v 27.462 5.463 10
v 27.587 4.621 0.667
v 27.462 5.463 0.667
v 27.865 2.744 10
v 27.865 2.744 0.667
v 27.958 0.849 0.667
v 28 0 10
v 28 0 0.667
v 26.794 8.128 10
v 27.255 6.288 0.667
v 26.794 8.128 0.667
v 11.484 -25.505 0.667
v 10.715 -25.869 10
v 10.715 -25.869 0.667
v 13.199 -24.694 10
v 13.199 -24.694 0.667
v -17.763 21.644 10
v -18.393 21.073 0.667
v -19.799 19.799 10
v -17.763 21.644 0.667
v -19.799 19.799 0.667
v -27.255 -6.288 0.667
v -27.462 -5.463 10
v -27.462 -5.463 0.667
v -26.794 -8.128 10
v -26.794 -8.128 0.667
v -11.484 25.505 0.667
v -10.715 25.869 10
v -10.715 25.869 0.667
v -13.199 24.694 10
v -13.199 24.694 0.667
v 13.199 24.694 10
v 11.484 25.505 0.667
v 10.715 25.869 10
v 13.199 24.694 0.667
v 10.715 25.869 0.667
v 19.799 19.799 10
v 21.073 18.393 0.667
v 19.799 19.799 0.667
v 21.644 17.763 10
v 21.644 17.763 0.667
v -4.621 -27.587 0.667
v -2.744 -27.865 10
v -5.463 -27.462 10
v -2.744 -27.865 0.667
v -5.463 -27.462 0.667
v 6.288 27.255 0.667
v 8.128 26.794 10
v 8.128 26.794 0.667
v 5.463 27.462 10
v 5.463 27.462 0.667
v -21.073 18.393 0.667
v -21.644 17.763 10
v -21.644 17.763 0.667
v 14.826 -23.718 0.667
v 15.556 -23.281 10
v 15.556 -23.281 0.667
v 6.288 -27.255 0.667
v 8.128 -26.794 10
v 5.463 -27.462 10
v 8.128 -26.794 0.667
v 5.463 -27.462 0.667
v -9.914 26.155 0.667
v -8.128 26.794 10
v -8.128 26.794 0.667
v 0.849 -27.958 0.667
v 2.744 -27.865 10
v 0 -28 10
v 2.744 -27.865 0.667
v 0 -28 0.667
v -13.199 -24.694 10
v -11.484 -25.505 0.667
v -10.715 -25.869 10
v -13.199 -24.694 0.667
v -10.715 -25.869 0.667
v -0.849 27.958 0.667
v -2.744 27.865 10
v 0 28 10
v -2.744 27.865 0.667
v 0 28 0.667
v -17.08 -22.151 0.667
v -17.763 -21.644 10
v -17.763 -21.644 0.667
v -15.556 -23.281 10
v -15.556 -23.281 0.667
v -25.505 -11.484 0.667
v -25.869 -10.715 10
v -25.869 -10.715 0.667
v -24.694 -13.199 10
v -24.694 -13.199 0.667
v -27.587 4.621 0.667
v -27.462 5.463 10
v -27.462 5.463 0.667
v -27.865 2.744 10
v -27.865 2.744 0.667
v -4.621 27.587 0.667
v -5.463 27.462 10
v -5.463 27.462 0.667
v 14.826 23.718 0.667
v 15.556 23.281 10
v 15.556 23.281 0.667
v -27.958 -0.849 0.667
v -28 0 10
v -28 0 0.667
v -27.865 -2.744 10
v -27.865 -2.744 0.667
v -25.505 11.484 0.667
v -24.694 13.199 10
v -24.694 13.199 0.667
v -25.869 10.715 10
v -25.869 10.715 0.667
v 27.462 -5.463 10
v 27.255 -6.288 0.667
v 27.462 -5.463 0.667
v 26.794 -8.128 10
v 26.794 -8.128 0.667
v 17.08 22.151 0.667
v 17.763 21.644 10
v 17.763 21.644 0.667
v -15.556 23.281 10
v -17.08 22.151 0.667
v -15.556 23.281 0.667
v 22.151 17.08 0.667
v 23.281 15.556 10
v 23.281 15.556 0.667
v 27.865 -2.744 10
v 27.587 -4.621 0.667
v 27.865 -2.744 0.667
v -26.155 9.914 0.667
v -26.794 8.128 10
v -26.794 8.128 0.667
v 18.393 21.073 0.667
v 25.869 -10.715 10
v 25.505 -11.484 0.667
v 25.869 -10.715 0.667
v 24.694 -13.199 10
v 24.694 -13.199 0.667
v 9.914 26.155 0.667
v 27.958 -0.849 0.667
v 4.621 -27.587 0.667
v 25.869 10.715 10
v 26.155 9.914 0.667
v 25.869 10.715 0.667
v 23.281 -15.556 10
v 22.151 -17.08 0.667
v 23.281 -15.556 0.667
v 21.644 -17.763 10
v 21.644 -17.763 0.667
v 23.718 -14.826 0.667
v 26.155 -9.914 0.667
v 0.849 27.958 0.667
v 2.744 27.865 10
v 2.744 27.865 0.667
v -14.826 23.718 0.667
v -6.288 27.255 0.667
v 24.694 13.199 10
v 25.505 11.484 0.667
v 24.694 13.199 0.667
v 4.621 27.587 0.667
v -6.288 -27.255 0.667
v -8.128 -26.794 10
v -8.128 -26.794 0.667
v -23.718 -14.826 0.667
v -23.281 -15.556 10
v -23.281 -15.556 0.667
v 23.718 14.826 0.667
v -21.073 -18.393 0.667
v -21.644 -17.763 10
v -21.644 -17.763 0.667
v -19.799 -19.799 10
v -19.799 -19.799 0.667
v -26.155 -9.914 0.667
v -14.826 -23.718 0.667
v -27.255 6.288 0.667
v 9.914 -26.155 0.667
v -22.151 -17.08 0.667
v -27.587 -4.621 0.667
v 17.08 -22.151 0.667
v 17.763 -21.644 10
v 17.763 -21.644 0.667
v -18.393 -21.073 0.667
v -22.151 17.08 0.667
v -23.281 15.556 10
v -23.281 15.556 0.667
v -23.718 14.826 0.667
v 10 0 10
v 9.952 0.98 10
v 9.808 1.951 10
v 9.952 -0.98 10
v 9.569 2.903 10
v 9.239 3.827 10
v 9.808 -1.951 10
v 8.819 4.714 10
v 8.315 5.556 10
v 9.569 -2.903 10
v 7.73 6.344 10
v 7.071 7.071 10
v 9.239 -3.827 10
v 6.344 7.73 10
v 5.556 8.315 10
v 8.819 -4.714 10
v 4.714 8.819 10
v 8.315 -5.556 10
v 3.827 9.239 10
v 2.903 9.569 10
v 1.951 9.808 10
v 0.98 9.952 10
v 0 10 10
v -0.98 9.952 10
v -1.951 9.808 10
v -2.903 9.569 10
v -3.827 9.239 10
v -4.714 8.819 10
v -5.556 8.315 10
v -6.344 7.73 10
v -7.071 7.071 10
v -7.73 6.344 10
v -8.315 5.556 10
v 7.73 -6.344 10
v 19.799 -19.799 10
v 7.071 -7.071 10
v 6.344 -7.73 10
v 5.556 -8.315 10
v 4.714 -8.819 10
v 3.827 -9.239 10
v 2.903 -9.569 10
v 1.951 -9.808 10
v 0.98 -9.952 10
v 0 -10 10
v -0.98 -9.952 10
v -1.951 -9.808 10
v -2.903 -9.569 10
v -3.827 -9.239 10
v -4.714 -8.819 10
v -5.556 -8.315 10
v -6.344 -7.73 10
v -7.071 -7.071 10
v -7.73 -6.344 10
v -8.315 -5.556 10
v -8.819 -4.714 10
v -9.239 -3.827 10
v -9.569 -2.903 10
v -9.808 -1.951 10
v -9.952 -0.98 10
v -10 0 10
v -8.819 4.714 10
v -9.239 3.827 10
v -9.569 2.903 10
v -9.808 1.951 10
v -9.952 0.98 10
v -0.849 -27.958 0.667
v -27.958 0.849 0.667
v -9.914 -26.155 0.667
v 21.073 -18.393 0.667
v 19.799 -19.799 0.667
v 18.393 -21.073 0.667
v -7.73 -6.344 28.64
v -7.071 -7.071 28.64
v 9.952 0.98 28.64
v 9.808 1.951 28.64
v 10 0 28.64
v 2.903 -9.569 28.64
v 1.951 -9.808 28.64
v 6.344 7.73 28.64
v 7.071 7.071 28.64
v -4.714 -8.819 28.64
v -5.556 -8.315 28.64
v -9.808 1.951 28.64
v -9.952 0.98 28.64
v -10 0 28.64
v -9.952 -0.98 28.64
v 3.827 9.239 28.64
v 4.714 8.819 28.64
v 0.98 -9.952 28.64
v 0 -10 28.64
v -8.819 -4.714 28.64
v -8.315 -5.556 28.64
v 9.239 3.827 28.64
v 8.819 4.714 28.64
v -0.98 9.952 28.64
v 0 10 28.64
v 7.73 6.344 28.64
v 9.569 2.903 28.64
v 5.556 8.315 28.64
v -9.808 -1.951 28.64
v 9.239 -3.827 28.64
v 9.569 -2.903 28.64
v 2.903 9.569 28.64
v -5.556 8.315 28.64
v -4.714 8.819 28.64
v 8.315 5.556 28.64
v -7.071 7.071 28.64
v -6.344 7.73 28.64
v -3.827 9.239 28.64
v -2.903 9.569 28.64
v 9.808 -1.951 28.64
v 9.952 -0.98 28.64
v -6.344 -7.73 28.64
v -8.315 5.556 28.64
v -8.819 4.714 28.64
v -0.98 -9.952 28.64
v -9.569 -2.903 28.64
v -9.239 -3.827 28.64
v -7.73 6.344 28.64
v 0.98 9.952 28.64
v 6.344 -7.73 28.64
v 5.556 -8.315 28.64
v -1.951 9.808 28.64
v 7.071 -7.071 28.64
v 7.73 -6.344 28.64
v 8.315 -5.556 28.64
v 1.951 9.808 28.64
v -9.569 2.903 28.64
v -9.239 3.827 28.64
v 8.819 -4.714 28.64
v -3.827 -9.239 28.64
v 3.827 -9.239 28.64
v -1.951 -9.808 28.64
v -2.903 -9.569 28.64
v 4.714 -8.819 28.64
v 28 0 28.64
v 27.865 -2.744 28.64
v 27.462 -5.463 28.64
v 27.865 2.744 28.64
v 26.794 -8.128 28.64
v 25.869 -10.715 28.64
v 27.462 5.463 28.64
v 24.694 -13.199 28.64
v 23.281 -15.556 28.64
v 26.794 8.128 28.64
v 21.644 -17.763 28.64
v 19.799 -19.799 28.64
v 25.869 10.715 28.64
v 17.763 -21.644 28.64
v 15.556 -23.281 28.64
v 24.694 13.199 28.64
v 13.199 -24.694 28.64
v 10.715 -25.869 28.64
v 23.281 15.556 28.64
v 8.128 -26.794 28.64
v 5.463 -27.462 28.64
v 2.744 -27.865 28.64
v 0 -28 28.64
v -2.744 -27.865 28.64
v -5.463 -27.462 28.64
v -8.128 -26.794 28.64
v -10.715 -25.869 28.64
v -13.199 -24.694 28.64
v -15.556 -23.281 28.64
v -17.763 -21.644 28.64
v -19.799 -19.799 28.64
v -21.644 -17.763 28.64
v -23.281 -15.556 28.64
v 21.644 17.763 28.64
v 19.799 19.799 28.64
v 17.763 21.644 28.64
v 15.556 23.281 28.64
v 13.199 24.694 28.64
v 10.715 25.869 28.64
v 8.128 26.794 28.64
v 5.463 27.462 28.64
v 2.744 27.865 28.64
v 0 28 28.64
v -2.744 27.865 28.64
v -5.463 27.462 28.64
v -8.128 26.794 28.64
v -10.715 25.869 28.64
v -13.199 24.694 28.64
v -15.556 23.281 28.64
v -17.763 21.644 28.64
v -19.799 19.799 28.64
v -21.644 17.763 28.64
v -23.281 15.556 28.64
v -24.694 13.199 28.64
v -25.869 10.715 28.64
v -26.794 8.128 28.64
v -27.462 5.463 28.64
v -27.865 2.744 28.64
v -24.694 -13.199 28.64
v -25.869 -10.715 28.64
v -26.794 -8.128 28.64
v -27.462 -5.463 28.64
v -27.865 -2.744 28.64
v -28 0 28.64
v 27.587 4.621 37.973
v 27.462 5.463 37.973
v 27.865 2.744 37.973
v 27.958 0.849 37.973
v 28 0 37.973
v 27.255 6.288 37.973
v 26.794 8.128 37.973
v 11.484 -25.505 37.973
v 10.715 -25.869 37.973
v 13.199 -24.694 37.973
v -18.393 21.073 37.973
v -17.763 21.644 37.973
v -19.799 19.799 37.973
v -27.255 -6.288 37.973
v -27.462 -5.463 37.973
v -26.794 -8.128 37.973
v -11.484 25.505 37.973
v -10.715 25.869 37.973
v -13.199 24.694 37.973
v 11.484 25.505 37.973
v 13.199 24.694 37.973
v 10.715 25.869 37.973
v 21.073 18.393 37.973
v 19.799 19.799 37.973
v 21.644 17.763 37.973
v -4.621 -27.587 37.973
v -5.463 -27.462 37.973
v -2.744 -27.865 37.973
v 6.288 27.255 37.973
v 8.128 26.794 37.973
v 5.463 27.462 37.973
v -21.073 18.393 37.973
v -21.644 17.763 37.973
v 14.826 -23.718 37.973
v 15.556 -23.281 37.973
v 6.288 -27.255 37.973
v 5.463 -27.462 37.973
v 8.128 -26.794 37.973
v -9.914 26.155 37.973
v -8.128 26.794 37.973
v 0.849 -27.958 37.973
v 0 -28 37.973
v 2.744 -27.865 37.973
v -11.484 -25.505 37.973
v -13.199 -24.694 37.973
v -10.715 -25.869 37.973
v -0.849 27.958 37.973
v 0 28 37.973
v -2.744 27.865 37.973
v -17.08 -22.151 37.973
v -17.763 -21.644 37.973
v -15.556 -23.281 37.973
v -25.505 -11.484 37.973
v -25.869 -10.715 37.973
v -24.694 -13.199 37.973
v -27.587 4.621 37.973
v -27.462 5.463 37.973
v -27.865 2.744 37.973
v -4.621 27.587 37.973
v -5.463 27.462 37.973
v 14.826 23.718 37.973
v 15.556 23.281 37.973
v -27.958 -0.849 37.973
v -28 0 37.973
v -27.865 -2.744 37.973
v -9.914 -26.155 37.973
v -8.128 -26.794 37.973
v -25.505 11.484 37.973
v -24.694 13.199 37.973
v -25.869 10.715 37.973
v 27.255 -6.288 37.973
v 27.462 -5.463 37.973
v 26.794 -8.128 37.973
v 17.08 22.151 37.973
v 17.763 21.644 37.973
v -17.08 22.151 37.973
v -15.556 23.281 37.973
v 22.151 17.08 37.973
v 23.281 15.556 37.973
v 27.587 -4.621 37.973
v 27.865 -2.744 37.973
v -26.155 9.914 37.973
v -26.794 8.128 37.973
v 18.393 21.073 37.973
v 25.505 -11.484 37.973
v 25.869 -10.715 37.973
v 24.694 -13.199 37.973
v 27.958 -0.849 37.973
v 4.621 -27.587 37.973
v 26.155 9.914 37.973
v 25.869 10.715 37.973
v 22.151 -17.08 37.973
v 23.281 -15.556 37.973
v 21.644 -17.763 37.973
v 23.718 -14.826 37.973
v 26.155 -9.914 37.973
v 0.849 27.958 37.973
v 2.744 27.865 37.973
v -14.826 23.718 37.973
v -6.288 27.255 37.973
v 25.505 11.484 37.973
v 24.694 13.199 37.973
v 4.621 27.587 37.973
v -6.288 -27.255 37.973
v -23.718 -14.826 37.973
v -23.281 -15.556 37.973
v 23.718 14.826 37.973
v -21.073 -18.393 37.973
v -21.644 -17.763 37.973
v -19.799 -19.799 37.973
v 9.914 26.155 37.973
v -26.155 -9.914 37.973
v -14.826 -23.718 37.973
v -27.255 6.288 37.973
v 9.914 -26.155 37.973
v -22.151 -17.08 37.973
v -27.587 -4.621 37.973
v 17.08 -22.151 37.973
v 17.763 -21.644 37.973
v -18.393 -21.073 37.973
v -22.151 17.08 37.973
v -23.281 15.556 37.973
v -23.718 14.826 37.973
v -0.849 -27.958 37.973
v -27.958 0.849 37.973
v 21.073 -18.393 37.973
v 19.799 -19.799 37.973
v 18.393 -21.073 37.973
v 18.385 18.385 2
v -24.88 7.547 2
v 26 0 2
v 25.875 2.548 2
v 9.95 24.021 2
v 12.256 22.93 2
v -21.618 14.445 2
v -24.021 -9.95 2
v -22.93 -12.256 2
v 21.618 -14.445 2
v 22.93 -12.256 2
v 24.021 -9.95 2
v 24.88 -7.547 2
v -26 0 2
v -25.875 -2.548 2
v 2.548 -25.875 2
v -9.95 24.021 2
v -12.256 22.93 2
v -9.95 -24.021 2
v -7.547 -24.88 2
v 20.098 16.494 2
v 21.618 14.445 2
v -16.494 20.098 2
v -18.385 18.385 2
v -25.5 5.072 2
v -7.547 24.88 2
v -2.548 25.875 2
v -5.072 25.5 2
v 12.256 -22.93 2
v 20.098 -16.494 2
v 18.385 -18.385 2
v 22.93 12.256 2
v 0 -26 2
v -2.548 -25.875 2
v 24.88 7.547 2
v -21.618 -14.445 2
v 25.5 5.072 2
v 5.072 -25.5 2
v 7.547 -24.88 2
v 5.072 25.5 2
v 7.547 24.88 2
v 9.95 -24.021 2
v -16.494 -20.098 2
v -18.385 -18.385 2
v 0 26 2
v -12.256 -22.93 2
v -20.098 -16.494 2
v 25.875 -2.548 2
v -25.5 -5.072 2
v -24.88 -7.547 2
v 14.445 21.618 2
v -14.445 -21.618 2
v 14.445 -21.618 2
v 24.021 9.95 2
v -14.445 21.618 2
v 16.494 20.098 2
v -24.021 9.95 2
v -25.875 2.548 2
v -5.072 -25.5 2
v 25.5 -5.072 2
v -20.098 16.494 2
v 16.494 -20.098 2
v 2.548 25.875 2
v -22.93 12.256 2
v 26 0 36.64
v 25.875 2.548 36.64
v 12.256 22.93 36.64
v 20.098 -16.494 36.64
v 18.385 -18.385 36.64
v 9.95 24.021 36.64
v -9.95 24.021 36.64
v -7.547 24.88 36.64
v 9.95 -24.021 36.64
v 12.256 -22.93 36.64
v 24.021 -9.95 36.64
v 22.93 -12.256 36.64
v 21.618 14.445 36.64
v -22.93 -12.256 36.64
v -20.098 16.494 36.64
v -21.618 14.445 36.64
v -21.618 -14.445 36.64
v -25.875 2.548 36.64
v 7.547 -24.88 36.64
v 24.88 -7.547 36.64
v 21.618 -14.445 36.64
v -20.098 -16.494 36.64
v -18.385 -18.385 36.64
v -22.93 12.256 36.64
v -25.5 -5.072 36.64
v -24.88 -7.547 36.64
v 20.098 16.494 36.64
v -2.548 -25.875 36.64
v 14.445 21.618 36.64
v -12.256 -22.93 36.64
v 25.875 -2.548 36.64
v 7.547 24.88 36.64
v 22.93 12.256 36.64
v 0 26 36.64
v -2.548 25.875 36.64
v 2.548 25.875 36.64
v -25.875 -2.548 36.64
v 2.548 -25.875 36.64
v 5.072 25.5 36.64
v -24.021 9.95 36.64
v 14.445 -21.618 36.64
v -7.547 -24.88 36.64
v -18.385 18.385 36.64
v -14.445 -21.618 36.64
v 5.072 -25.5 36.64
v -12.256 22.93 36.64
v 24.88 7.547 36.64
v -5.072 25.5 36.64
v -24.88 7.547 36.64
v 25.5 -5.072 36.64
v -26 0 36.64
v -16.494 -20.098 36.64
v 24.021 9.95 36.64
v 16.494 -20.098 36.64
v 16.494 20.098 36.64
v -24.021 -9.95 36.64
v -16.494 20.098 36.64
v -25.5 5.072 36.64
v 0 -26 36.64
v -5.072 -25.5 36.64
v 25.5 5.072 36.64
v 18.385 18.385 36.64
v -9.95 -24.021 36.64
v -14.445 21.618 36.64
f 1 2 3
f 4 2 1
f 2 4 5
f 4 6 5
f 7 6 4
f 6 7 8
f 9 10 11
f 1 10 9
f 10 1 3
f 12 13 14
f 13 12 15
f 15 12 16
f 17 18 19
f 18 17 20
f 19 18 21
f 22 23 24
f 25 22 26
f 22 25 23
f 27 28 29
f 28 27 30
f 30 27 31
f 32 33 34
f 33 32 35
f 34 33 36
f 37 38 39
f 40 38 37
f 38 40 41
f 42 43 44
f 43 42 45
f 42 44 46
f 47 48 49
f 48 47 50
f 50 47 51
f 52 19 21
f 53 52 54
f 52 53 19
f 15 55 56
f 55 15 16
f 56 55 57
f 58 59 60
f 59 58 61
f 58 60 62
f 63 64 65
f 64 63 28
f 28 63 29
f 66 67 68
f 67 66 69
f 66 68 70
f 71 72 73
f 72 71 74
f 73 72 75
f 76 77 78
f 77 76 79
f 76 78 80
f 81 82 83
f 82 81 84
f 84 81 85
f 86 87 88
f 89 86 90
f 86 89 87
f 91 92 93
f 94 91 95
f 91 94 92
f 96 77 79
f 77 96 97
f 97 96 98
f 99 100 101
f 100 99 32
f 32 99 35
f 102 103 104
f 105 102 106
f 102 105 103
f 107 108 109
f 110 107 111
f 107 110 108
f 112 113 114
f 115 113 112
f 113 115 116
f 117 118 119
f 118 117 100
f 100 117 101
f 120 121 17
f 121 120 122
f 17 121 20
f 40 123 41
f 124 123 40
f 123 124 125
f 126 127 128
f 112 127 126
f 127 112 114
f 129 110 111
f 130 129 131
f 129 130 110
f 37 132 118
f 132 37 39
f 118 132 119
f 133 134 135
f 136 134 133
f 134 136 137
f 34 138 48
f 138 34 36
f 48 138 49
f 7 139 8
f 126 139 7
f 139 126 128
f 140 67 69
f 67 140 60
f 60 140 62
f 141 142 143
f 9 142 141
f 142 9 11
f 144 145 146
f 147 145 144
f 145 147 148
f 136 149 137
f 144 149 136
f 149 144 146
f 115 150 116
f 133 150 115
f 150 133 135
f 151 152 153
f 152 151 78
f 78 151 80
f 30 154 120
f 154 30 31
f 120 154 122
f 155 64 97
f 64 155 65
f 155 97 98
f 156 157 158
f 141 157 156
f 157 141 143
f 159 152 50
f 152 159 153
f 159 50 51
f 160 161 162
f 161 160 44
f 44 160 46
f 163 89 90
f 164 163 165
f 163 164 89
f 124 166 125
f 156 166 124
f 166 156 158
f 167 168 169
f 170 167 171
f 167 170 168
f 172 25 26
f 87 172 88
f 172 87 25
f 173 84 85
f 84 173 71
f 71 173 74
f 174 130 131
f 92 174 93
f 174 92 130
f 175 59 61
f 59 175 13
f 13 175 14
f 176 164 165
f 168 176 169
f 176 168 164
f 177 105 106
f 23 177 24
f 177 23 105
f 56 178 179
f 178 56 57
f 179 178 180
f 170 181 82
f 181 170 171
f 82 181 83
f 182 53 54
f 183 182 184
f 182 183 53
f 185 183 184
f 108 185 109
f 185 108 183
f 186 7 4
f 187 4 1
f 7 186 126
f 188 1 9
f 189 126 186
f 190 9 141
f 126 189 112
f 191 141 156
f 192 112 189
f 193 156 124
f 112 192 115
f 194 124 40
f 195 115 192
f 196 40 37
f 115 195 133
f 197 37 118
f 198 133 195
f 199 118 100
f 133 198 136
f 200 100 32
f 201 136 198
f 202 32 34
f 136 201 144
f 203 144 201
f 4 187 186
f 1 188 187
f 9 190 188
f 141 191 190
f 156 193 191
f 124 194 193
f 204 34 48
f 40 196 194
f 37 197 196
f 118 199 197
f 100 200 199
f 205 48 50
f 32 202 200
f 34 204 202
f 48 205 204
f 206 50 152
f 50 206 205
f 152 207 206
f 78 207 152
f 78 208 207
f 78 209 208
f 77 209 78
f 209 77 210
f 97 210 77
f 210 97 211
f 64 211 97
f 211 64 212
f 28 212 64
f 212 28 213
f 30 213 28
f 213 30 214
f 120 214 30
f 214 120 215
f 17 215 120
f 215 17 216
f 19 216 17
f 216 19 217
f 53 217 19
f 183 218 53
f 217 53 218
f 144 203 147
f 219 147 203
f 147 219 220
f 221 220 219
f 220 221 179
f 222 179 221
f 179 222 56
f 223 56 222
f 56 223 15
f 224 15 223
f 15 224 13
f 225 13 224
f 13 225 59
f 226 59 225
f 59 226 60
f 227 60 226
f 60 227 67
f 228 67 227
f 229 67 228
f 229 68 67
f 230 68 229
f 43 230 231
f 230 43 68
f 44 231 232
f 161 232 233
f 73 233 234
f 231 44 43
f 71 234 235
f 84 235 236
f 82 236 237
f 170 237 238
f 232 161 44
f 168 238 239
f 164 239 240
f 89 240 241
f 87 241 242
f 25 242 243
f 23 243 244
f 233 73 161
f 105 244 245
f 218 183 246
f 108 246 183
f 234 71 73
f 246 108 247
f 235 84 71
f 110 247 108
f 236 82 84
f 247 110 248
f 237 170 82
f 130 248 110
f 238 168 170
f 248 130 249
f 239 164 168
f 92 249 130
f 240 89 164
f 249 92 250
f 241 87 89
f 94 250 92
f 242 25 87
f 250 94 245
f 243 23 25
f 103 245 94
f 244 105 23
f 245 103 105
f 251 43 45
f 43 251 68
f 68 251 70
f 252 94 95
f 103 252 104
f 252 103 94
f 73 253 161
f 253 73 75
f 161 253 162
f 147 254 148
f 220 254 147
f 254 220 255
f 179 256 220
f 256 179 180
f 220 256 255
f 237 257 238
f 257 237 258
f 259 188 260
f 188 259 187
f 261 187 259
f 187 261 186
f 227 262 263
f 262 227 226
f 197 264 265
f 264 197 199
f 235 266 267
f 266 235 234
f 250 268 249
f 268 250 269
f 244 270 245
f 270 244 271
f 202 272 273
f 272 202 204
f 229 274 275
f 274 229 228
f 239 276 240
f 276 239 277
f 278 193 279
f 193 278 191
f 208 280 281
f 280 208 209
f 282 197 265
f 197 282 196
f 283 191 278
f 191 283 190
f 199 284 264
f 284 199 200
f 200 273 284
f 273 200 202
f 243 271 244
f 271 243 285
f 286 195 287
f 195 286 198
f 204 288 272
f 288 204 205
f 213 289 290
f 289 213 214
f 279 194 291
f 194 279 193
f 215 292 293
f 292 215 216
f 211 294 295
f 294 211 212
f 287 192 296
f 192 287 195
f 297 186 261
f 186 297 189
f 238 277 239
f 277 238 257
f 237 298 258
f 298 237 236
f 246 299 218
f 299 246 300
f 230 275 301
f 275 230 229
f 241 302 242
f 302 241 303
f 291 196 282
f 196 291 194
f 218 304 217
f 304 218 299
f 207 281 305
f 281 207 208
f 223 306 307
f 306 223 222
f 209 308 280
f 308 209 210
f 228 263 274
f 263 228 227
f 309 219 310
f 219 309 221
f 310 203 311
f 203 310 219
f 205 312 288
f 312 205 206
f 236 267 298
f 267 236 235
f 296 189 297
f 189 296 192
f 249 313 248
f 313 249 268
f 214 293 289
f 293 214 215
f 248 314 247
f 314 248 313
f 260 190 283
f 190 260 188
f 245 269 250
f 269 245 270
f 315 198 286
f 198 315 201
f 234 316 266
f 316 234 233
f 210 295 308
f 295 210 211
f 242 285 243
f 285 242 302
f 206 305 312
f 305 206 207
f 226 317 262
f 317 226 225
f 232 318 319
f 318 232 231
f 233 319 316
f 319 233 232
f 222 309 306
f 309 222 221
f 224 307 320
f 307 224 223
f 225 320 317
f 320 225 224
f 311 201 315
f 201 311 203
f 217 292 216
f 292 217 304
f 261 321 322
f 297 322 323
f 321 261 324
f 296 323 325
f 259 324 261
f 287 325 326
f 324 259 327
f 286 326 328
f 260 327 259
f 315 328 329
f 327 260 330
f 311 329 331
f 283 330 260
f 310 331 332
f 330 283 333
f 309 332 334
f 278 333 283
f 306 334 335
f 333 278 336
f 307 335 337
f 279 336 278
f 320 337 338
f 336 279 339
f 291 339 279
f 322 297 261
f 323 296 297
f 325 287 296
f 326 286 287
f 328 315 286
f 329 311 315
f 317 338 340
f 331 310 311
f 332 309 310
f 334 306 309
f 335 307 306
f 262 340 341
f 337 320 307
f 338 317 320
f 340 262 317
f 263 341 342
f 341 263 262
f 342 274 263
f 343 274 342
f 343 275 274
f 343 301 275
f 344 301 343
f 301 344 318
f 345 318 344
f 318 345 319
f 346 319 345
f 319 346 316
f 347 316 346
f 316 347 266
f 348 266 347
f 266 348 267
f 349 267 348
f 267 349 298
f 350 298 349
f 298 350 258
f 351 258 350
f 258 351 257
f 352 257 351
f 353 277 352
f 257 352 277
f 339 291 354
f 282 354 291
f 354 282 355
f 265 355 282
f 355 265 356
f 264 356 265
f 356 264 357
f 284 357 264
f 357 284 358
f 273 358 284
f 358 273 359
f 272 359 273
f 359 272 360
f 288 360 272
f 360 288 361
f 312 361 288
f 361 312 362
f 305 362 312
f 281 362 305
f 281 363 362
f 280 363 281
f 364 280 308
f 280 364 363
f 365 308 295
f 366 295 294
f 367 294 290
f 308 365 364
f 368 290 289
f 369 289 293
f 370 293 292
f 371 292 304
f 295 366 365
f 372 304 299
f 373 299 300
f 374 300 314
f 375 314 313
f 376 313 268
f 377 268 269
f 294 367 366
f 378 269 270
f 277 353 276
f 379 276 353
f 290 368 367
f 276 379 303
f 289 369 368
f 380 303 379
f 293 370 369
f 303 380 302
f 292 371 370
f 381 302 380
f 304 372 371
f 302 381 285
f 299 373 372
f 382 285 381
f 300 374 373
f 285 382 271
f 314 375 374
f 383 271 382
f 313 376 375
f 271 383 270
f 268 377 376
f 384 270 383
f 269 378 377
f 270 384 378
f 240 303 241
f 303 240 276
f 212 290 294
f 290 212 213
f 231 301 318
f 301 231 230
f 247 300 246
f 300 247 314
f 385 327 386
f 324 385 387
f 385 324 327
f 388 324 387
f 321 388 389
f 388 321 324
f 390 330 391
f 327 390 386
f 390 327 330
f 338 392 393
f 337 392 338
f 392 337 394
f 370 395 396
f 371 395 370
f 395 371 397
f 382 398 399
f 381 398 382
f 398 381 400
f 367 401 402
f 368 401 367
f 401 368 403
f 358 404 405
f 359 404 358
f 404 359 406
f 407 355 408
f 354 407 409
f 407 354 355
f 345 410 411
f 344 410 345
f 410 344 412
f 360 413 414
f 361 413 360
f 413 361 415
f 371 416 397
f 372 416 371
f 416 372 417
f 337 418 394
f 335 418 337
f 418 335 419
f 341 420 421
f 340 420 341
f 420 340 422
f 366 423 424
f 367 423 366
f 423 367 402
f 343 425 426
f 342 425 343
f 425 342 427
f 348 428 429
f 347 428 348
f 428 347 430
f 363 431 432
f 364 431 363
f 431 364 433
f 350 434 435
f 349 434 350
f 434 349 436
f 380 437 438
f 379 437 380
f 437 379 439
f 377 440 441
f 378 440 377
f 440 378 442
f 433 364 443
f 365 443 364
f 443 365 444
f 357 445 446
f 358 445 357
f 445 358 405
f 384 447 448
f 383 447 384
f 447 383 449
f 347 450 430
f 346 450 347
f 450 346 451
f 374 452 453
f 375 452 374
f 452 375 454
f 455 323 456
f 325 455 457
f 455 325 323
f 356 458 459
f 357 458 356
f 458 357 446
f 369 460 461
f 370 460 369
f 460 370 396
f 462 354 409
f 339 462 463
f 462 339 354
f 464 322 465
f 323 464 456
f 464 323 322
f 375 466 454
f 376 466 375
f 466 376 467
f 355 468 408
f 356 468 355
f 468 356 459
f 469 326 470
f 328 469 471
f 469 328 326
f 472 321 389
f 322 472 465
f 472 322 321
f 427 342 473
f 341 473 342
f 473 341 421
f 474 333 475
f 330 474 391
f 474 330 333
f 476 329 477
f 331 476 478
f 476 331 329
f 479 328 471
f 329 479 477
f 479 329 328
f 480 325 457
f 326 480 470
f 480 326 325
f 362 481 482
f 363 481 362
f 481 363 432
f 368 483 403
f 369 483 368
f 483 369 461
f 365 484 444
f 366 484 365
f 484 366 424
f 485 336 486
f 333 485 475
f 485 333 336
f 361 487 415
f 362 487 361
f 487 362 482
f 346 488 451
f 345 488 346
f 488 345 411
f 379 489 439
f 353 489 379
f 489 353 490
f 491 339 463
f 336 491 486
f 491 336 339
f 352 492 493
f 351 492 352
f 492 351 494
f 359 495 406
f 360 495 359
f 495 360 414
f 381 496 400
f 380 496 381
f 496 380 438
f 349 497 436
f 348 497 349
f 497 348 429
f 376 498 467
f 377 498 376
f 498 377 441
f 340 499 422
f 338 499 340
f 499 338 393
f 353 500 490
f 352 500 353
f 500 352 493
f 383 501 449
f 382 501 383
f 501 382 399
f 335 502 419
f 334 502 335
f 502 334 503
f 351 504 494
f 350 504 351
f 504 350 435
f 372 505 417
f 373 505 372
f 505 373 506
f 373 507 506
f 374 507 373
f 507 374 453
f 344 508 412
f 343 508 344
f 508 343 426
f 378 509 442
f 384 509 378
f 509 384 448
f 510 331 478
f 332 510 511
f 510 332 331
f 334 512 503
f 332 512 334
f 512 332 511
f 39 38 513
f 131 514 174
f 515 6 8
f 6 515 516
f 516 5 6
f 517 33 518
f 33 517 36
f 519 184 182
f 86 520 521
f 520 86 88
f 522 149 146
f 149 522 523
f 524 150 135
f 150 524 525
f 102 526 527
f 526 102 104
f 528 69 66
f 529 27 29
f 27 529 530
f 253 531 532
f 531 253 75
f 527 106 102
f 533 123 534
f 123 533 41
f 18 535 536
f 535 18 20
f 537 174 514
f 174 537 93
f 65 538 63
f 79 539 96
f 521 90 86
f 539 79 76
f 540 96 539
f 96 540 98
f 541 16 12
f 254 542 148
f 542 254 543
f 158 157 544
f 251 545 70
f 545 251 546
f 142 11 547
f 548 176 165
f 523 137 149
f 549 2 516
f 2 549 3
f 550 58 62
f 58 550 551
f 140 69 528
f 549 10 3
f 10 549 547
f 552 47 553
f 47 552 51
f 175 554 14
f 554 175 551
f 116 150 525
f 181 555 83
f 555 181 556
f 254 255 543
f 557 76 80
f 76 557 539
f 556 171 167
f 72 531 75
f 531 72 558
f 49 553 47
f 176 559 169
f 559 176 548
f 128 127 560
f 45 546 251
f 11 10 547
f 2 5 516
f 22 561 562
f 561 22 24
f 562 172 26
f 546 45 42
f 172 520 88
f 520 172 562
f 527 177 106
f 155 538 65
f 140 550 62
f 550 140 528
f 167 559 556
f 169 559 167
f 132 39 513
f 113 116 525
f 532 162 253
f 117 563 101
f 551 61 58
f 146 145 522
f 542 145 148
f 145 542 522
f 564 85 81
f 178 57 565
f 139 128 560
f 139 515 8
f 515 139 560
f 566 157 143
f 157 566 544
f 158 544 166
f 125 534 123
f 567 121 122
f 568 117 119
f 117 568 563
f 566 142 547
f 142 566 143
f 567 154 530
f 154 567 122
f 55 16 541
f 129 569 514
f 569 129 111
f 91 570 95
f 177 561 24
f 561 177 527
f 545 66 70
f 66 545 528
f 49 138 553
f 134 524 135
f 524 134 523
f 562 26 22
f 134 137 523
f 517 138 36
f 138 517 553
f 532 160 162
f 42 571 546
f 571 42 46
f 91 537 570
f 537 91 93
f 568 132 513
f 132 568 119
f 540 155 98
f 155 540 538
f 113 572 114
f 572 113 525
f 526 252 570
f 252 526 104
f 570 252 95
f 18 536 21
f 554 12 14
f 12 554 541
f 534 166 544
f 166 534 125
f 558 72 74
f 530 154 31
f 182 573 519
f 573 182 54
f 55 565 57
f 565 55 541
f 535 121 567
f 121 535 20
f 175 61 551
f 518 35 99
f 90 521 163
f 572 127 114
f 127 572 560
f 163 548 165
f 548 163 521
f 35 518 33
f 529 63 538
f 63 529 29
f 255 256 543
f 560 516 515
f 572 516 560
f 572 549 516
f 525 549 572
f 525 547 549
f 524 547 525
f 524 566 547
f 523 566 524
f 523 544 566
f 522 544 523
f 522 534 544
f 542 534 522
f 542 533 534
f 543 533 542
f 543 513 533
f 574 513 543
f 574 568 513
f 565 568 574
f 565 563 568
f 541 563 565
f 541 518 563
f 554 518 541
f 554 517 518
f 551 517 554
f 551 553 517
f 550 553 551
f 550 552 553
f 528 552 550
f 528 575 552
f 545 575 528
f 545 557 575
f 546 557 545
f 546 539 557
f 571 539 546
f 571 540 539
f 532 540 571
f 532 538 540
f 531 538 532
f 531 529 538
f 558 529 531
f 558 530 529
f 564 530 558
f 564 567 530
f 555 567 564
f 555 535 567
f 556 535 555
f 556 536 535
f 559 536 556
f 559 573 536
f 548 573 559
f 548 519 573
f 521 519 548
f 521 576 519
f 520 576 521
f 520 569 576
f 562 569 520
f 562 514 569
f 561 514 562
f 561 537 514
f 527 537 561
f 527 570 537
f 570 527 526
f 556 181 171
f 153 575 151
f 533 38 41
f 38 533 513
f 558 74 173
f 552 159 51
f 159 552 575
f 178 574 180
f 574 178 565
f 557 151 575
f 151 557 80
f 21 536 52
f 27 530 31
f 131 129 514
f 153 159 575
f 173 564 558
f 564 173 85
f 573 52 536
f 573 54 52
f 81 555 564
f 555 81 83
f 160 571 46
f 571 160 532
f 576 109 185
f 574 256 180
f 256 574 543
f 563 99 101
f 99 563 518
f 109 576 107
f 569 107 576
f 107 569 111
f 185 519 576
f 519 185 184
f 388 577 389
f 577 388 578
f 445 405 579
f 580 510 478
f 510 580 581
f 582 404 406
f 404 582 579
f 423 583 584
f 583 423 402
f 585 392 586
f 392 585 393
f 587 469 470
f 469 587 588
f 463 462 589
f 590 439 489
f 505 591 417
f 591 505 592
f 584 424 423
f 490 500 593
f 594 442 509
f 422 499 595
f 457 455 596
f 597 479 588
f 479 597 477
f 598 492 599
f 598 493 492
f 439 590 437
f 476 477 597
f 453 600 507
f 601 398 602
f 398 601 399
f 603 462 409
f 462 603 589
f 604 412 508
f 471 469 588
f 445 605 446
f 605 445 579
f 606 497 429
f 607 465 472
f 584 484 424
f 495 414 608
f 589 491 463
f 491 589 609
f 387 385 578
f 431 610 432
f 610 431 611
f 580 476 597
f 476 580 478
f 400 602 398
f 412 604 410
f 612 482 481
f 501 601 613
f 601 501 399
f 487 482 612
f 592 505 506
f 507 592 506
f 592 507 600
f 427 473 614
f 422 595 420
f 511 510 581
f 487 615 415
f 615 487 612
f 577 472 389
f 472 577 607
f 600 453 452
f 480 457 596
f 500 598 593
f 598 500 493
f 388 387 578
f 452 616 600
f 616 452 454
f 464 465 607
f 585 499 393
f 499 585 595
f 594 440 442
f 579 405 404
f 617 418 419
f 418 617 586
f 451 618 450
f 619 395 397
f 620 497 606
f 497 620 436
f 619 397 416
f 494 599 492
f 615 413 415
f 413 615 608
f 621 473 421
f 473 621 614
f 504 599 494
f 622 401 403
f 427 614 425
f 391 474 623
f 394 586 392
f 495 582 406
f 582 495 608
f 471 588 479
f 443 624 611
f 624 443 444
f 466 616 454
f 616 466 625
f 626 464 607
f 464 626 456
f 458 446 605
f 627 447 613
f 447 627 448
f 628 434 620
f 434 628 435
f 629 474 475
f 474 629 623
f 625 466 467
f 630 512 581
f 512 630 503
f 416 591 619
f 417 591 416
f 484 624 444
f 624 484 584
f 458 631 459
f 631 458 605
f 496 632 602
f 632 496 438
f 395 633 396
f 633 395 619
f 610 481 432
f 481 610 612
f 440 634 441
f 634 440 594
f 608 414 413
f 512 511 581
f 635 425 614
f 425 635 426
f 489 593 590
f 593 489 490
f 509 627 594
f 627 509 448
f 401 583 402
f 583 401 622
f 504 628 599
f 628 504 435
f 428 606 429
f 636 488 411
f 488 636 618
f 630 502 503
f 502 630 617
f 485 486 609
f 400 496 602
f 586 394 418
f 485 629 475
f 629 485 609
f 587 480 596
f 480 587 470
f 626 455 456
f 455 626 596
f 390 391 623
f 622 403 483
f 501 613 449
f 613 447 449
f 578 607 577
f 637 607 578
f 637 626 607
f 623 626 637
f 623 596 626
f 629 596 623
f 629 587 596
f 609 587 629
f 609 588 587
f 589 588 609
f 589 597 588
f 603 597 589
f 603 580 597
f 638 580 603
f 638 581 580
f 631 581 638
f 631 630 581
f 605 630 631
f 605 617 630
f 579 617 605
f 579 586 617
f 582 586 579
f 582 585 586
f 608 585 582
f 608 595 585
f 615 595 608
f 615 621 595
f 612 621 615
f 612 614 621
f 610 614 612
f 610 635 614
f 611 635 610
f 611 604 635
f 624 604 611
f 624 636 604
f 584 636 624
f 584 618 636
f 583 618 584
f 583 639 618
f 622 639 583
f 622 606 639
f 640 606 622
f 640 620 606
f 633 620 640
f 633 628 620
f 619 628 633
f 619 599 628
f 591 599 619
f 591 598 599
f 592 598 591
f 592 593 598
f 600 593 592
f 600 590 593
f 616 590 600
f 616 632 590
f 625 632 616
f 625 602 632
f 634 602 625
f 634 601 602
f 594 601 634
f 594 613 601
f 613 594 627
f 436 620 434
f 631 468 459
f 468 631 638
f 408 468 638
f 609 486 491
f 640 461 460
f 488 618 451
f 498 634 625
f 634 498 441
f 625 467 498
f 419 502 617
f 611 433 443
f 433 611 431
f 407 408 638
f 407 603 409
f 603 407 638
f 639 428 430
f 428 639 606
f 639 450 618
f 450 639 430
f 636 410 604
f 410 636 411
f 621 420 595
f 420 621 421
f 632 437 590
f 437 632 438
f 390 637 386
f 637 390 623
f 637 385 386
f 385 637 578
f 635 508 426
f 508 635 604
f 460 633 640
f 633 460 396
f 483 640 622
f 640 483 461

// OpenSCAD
/* doodle-meta {"version":1,"parameters":{"max_diameter":{"label":"Overall Diameter","description":"Maximum diameter of the knob (base and cap)","unit":"mm","feature":"overall_diameter"},"total_height":{"label":"Overall Height","description":"Total height of the knob from base to top","unit":"mm","feature":"overall_height"},"neck_diameter":{"label":"Neck Diameter","description":"Diameter of the narrow middle section","unit":"mm","feature":"neck_width"},"base_height":{"label":"Base Height","description":"Height of the bottom flange section","unit":"mm","feature":"base_height"},"cap_height":{"label":"Cap Height","description":"Height of the top cap section","unit":"mm","feature":"cap_height"}},"features":{"overall_diameter":{"kind":"dimension","axis":"x","label":"Overall Diameter"},"overall_height":{"kind":"dimension","axis":"z","label":"Overall Height"},"neck_width":{"kind":"region","label":"Neck","min":[0,0,0],"max":[{"parameter":"neck_diameter","scale":0.5,"offset":0},{"parameter":"neck_diameter","scale":0.5,"offset":0},{"parameter":"total_height","scale":1,"offset":0}]},"base_height":{"kind":"region","label":"Base Flange","min":[0,0,0],"max":[{"parameter":"max_diameter","scale":0.5,"offset":0},{"parameter":"max_diameter","scale":0.5,"offset":0},{"parameter":"base_height","scale":1,"offset":0}]},"cap_height":{"kind":"region","label":"Top Cap","min":[0,0,{"parameter":"total_height","scale":1,"offset":0}],"max":[{"parameter":"max_diameter","scale":0.5,"offset":0},{"parameter":"max_diameter","scale":0.5,"offset":0},{"parameter":"total_height","scale":1,"offset":0}]}}} */

// Parameters
max_diameter = 56.0;
total_height = 38.64;
neck_diameter = 20.0; // Inferred from drawing proportions (approx 1/3 of max)
base_height = 10.0;   // Inferred from drawing proportions
cap_height = 10.0;    // Inferred from drawing proportions

// Derived dimensions
max_radius = max_diameter / 2;
neck_radius = neck_diameter / 2;
neck_height = total_height - base_height - cap_height;

// Chamfer parameters
chamfer_size = 2.0;

// Modules

module knob_body() {
    // Construct the stepped profile using cylinders
    // 1. Base Flange (Bottom)
    // We use a cylinder for the main body of the base.
    // To add a chamfer to the bottom edge, we can subtract a cone or use a specific profile.
    // For simplicity and robustness in OpenSCAD for 3D printing, we will stack cylinders.
    // The "slight chamfer" on the bottom edge is often better handled by a small cone subtraction or just a standard cylinder if the chamfer is minor.
    // Let's create the base as a cylinder.
    
    // 2. Neck (Middle)
    // 3. Top Cap (Top)
    
    // To ensure watertightness and proper union, we overlap slightly or just stack them exactly.
    // Stacking exactly is fine for union.
    
    // Base Flange
    translate([0, 0, 0])
        cylinder(h = base_height, r = max_radius, $fn = 64);
        
    // Neck
    translate([0, 0, base_height])
        cylinder(h = neck_height, r = neck_radius, $fn = 64);
        
    // Top Cap
    translate([0, 0, base_height + neck_height])
        cylinder(h = cap_height, r = max_radius, $fn = 64);
}

module chamfer_bottom() {
    // Subtract a cone to create a chamfer on the bottom edge of the base
    // The cone should be wider at the bottom (Z=0) and narrow up to the chamfer height.
    // Actually, to chamfer the bottom edge (outer edge at Z=0), we subtract a cone that is 
    // wide at Z=0 and narrows to the radius at Z=chamfer_size.
    // Wait, standard chamfer on bottom edge:
    // The material exists at r=max_radius for z > 0.
    // We want to remove material near the corner (r=max_radius, z=0).
    // We subtract a cone that starts at r=max_radius at z=0 and goes to r=max_radius-chamfer_size at z=chamfer_size?
    // No, a chamfer cuts the corner.
    // Let's use a difference operation on the base.
    
    // Cone for bottom chamfer:
    // At Z=0, radius should be max_radius + chamfer_size (to ensure cut)
    // At Z=chamfer_size, radius should be max_radius - chamfer_size? No.
    // Let's think about the profile.
    // Original: Vertical line at r=max_radius from z=0 to z=base_height.
    // Chamfered: Line from (max_radius, chamfer_size) to (max_radius-chamfer_size, 0)? 
    // Usually "chamfer on bottom edge" means the outer bottom corner is cut.
    // So at Z=0, the radius is reduced. At Z=chamfer_size, the radius is full max_radius.
    // So we subtract a cone that is:
    // r1 = max_radius (at Z=0) -> this doesn't cut anything if we subtract from inside.
    // We need to subtract the "corner".
    // The corner is the volume outside the chamfer line.
    // Let's subtract a cone that is wide at the bottom and narrow at the top of the chamfer zone.
    // Cone: r1 = max_radius + 1 (at Z=0), r2 = max_radius - chamfer_size (at Z=chamfer_size).
    // This will cut away the outer bottom corner.
    
    translate([0, 0, 0])
        cylinder(h = chamfer_size, r1 = max_radius + 1, r2 = max_radius - chamfer_size, $fn = 64);
}

module chamfer_top() {
    // Subtract a cone to create a chamfer on the top edge of the cap
    // Top edge is at Z = total_height.
    // We want to cut the outer top corner.
    // At Z = total_height, radius is reduced. At Z = total_height - chamfer_size, radius is full.
    // Subtract a cone:
    // r1 = max_radius - chamfer_size (at Z = total_height - chamfer_size)
    // r2 = max_radius + 1 (at Z = total_height)
    
    translate([0, 0, total_height - chamfer_size])
        cylinder(h = chamfer_size, r1 = max_radius - chamfer_size, r2 = max_radius + 1, $fn = 64);
}

// Main Design
difference() {
    knob_body();
    chamfer_bottom();
    chamfer_top();
}
